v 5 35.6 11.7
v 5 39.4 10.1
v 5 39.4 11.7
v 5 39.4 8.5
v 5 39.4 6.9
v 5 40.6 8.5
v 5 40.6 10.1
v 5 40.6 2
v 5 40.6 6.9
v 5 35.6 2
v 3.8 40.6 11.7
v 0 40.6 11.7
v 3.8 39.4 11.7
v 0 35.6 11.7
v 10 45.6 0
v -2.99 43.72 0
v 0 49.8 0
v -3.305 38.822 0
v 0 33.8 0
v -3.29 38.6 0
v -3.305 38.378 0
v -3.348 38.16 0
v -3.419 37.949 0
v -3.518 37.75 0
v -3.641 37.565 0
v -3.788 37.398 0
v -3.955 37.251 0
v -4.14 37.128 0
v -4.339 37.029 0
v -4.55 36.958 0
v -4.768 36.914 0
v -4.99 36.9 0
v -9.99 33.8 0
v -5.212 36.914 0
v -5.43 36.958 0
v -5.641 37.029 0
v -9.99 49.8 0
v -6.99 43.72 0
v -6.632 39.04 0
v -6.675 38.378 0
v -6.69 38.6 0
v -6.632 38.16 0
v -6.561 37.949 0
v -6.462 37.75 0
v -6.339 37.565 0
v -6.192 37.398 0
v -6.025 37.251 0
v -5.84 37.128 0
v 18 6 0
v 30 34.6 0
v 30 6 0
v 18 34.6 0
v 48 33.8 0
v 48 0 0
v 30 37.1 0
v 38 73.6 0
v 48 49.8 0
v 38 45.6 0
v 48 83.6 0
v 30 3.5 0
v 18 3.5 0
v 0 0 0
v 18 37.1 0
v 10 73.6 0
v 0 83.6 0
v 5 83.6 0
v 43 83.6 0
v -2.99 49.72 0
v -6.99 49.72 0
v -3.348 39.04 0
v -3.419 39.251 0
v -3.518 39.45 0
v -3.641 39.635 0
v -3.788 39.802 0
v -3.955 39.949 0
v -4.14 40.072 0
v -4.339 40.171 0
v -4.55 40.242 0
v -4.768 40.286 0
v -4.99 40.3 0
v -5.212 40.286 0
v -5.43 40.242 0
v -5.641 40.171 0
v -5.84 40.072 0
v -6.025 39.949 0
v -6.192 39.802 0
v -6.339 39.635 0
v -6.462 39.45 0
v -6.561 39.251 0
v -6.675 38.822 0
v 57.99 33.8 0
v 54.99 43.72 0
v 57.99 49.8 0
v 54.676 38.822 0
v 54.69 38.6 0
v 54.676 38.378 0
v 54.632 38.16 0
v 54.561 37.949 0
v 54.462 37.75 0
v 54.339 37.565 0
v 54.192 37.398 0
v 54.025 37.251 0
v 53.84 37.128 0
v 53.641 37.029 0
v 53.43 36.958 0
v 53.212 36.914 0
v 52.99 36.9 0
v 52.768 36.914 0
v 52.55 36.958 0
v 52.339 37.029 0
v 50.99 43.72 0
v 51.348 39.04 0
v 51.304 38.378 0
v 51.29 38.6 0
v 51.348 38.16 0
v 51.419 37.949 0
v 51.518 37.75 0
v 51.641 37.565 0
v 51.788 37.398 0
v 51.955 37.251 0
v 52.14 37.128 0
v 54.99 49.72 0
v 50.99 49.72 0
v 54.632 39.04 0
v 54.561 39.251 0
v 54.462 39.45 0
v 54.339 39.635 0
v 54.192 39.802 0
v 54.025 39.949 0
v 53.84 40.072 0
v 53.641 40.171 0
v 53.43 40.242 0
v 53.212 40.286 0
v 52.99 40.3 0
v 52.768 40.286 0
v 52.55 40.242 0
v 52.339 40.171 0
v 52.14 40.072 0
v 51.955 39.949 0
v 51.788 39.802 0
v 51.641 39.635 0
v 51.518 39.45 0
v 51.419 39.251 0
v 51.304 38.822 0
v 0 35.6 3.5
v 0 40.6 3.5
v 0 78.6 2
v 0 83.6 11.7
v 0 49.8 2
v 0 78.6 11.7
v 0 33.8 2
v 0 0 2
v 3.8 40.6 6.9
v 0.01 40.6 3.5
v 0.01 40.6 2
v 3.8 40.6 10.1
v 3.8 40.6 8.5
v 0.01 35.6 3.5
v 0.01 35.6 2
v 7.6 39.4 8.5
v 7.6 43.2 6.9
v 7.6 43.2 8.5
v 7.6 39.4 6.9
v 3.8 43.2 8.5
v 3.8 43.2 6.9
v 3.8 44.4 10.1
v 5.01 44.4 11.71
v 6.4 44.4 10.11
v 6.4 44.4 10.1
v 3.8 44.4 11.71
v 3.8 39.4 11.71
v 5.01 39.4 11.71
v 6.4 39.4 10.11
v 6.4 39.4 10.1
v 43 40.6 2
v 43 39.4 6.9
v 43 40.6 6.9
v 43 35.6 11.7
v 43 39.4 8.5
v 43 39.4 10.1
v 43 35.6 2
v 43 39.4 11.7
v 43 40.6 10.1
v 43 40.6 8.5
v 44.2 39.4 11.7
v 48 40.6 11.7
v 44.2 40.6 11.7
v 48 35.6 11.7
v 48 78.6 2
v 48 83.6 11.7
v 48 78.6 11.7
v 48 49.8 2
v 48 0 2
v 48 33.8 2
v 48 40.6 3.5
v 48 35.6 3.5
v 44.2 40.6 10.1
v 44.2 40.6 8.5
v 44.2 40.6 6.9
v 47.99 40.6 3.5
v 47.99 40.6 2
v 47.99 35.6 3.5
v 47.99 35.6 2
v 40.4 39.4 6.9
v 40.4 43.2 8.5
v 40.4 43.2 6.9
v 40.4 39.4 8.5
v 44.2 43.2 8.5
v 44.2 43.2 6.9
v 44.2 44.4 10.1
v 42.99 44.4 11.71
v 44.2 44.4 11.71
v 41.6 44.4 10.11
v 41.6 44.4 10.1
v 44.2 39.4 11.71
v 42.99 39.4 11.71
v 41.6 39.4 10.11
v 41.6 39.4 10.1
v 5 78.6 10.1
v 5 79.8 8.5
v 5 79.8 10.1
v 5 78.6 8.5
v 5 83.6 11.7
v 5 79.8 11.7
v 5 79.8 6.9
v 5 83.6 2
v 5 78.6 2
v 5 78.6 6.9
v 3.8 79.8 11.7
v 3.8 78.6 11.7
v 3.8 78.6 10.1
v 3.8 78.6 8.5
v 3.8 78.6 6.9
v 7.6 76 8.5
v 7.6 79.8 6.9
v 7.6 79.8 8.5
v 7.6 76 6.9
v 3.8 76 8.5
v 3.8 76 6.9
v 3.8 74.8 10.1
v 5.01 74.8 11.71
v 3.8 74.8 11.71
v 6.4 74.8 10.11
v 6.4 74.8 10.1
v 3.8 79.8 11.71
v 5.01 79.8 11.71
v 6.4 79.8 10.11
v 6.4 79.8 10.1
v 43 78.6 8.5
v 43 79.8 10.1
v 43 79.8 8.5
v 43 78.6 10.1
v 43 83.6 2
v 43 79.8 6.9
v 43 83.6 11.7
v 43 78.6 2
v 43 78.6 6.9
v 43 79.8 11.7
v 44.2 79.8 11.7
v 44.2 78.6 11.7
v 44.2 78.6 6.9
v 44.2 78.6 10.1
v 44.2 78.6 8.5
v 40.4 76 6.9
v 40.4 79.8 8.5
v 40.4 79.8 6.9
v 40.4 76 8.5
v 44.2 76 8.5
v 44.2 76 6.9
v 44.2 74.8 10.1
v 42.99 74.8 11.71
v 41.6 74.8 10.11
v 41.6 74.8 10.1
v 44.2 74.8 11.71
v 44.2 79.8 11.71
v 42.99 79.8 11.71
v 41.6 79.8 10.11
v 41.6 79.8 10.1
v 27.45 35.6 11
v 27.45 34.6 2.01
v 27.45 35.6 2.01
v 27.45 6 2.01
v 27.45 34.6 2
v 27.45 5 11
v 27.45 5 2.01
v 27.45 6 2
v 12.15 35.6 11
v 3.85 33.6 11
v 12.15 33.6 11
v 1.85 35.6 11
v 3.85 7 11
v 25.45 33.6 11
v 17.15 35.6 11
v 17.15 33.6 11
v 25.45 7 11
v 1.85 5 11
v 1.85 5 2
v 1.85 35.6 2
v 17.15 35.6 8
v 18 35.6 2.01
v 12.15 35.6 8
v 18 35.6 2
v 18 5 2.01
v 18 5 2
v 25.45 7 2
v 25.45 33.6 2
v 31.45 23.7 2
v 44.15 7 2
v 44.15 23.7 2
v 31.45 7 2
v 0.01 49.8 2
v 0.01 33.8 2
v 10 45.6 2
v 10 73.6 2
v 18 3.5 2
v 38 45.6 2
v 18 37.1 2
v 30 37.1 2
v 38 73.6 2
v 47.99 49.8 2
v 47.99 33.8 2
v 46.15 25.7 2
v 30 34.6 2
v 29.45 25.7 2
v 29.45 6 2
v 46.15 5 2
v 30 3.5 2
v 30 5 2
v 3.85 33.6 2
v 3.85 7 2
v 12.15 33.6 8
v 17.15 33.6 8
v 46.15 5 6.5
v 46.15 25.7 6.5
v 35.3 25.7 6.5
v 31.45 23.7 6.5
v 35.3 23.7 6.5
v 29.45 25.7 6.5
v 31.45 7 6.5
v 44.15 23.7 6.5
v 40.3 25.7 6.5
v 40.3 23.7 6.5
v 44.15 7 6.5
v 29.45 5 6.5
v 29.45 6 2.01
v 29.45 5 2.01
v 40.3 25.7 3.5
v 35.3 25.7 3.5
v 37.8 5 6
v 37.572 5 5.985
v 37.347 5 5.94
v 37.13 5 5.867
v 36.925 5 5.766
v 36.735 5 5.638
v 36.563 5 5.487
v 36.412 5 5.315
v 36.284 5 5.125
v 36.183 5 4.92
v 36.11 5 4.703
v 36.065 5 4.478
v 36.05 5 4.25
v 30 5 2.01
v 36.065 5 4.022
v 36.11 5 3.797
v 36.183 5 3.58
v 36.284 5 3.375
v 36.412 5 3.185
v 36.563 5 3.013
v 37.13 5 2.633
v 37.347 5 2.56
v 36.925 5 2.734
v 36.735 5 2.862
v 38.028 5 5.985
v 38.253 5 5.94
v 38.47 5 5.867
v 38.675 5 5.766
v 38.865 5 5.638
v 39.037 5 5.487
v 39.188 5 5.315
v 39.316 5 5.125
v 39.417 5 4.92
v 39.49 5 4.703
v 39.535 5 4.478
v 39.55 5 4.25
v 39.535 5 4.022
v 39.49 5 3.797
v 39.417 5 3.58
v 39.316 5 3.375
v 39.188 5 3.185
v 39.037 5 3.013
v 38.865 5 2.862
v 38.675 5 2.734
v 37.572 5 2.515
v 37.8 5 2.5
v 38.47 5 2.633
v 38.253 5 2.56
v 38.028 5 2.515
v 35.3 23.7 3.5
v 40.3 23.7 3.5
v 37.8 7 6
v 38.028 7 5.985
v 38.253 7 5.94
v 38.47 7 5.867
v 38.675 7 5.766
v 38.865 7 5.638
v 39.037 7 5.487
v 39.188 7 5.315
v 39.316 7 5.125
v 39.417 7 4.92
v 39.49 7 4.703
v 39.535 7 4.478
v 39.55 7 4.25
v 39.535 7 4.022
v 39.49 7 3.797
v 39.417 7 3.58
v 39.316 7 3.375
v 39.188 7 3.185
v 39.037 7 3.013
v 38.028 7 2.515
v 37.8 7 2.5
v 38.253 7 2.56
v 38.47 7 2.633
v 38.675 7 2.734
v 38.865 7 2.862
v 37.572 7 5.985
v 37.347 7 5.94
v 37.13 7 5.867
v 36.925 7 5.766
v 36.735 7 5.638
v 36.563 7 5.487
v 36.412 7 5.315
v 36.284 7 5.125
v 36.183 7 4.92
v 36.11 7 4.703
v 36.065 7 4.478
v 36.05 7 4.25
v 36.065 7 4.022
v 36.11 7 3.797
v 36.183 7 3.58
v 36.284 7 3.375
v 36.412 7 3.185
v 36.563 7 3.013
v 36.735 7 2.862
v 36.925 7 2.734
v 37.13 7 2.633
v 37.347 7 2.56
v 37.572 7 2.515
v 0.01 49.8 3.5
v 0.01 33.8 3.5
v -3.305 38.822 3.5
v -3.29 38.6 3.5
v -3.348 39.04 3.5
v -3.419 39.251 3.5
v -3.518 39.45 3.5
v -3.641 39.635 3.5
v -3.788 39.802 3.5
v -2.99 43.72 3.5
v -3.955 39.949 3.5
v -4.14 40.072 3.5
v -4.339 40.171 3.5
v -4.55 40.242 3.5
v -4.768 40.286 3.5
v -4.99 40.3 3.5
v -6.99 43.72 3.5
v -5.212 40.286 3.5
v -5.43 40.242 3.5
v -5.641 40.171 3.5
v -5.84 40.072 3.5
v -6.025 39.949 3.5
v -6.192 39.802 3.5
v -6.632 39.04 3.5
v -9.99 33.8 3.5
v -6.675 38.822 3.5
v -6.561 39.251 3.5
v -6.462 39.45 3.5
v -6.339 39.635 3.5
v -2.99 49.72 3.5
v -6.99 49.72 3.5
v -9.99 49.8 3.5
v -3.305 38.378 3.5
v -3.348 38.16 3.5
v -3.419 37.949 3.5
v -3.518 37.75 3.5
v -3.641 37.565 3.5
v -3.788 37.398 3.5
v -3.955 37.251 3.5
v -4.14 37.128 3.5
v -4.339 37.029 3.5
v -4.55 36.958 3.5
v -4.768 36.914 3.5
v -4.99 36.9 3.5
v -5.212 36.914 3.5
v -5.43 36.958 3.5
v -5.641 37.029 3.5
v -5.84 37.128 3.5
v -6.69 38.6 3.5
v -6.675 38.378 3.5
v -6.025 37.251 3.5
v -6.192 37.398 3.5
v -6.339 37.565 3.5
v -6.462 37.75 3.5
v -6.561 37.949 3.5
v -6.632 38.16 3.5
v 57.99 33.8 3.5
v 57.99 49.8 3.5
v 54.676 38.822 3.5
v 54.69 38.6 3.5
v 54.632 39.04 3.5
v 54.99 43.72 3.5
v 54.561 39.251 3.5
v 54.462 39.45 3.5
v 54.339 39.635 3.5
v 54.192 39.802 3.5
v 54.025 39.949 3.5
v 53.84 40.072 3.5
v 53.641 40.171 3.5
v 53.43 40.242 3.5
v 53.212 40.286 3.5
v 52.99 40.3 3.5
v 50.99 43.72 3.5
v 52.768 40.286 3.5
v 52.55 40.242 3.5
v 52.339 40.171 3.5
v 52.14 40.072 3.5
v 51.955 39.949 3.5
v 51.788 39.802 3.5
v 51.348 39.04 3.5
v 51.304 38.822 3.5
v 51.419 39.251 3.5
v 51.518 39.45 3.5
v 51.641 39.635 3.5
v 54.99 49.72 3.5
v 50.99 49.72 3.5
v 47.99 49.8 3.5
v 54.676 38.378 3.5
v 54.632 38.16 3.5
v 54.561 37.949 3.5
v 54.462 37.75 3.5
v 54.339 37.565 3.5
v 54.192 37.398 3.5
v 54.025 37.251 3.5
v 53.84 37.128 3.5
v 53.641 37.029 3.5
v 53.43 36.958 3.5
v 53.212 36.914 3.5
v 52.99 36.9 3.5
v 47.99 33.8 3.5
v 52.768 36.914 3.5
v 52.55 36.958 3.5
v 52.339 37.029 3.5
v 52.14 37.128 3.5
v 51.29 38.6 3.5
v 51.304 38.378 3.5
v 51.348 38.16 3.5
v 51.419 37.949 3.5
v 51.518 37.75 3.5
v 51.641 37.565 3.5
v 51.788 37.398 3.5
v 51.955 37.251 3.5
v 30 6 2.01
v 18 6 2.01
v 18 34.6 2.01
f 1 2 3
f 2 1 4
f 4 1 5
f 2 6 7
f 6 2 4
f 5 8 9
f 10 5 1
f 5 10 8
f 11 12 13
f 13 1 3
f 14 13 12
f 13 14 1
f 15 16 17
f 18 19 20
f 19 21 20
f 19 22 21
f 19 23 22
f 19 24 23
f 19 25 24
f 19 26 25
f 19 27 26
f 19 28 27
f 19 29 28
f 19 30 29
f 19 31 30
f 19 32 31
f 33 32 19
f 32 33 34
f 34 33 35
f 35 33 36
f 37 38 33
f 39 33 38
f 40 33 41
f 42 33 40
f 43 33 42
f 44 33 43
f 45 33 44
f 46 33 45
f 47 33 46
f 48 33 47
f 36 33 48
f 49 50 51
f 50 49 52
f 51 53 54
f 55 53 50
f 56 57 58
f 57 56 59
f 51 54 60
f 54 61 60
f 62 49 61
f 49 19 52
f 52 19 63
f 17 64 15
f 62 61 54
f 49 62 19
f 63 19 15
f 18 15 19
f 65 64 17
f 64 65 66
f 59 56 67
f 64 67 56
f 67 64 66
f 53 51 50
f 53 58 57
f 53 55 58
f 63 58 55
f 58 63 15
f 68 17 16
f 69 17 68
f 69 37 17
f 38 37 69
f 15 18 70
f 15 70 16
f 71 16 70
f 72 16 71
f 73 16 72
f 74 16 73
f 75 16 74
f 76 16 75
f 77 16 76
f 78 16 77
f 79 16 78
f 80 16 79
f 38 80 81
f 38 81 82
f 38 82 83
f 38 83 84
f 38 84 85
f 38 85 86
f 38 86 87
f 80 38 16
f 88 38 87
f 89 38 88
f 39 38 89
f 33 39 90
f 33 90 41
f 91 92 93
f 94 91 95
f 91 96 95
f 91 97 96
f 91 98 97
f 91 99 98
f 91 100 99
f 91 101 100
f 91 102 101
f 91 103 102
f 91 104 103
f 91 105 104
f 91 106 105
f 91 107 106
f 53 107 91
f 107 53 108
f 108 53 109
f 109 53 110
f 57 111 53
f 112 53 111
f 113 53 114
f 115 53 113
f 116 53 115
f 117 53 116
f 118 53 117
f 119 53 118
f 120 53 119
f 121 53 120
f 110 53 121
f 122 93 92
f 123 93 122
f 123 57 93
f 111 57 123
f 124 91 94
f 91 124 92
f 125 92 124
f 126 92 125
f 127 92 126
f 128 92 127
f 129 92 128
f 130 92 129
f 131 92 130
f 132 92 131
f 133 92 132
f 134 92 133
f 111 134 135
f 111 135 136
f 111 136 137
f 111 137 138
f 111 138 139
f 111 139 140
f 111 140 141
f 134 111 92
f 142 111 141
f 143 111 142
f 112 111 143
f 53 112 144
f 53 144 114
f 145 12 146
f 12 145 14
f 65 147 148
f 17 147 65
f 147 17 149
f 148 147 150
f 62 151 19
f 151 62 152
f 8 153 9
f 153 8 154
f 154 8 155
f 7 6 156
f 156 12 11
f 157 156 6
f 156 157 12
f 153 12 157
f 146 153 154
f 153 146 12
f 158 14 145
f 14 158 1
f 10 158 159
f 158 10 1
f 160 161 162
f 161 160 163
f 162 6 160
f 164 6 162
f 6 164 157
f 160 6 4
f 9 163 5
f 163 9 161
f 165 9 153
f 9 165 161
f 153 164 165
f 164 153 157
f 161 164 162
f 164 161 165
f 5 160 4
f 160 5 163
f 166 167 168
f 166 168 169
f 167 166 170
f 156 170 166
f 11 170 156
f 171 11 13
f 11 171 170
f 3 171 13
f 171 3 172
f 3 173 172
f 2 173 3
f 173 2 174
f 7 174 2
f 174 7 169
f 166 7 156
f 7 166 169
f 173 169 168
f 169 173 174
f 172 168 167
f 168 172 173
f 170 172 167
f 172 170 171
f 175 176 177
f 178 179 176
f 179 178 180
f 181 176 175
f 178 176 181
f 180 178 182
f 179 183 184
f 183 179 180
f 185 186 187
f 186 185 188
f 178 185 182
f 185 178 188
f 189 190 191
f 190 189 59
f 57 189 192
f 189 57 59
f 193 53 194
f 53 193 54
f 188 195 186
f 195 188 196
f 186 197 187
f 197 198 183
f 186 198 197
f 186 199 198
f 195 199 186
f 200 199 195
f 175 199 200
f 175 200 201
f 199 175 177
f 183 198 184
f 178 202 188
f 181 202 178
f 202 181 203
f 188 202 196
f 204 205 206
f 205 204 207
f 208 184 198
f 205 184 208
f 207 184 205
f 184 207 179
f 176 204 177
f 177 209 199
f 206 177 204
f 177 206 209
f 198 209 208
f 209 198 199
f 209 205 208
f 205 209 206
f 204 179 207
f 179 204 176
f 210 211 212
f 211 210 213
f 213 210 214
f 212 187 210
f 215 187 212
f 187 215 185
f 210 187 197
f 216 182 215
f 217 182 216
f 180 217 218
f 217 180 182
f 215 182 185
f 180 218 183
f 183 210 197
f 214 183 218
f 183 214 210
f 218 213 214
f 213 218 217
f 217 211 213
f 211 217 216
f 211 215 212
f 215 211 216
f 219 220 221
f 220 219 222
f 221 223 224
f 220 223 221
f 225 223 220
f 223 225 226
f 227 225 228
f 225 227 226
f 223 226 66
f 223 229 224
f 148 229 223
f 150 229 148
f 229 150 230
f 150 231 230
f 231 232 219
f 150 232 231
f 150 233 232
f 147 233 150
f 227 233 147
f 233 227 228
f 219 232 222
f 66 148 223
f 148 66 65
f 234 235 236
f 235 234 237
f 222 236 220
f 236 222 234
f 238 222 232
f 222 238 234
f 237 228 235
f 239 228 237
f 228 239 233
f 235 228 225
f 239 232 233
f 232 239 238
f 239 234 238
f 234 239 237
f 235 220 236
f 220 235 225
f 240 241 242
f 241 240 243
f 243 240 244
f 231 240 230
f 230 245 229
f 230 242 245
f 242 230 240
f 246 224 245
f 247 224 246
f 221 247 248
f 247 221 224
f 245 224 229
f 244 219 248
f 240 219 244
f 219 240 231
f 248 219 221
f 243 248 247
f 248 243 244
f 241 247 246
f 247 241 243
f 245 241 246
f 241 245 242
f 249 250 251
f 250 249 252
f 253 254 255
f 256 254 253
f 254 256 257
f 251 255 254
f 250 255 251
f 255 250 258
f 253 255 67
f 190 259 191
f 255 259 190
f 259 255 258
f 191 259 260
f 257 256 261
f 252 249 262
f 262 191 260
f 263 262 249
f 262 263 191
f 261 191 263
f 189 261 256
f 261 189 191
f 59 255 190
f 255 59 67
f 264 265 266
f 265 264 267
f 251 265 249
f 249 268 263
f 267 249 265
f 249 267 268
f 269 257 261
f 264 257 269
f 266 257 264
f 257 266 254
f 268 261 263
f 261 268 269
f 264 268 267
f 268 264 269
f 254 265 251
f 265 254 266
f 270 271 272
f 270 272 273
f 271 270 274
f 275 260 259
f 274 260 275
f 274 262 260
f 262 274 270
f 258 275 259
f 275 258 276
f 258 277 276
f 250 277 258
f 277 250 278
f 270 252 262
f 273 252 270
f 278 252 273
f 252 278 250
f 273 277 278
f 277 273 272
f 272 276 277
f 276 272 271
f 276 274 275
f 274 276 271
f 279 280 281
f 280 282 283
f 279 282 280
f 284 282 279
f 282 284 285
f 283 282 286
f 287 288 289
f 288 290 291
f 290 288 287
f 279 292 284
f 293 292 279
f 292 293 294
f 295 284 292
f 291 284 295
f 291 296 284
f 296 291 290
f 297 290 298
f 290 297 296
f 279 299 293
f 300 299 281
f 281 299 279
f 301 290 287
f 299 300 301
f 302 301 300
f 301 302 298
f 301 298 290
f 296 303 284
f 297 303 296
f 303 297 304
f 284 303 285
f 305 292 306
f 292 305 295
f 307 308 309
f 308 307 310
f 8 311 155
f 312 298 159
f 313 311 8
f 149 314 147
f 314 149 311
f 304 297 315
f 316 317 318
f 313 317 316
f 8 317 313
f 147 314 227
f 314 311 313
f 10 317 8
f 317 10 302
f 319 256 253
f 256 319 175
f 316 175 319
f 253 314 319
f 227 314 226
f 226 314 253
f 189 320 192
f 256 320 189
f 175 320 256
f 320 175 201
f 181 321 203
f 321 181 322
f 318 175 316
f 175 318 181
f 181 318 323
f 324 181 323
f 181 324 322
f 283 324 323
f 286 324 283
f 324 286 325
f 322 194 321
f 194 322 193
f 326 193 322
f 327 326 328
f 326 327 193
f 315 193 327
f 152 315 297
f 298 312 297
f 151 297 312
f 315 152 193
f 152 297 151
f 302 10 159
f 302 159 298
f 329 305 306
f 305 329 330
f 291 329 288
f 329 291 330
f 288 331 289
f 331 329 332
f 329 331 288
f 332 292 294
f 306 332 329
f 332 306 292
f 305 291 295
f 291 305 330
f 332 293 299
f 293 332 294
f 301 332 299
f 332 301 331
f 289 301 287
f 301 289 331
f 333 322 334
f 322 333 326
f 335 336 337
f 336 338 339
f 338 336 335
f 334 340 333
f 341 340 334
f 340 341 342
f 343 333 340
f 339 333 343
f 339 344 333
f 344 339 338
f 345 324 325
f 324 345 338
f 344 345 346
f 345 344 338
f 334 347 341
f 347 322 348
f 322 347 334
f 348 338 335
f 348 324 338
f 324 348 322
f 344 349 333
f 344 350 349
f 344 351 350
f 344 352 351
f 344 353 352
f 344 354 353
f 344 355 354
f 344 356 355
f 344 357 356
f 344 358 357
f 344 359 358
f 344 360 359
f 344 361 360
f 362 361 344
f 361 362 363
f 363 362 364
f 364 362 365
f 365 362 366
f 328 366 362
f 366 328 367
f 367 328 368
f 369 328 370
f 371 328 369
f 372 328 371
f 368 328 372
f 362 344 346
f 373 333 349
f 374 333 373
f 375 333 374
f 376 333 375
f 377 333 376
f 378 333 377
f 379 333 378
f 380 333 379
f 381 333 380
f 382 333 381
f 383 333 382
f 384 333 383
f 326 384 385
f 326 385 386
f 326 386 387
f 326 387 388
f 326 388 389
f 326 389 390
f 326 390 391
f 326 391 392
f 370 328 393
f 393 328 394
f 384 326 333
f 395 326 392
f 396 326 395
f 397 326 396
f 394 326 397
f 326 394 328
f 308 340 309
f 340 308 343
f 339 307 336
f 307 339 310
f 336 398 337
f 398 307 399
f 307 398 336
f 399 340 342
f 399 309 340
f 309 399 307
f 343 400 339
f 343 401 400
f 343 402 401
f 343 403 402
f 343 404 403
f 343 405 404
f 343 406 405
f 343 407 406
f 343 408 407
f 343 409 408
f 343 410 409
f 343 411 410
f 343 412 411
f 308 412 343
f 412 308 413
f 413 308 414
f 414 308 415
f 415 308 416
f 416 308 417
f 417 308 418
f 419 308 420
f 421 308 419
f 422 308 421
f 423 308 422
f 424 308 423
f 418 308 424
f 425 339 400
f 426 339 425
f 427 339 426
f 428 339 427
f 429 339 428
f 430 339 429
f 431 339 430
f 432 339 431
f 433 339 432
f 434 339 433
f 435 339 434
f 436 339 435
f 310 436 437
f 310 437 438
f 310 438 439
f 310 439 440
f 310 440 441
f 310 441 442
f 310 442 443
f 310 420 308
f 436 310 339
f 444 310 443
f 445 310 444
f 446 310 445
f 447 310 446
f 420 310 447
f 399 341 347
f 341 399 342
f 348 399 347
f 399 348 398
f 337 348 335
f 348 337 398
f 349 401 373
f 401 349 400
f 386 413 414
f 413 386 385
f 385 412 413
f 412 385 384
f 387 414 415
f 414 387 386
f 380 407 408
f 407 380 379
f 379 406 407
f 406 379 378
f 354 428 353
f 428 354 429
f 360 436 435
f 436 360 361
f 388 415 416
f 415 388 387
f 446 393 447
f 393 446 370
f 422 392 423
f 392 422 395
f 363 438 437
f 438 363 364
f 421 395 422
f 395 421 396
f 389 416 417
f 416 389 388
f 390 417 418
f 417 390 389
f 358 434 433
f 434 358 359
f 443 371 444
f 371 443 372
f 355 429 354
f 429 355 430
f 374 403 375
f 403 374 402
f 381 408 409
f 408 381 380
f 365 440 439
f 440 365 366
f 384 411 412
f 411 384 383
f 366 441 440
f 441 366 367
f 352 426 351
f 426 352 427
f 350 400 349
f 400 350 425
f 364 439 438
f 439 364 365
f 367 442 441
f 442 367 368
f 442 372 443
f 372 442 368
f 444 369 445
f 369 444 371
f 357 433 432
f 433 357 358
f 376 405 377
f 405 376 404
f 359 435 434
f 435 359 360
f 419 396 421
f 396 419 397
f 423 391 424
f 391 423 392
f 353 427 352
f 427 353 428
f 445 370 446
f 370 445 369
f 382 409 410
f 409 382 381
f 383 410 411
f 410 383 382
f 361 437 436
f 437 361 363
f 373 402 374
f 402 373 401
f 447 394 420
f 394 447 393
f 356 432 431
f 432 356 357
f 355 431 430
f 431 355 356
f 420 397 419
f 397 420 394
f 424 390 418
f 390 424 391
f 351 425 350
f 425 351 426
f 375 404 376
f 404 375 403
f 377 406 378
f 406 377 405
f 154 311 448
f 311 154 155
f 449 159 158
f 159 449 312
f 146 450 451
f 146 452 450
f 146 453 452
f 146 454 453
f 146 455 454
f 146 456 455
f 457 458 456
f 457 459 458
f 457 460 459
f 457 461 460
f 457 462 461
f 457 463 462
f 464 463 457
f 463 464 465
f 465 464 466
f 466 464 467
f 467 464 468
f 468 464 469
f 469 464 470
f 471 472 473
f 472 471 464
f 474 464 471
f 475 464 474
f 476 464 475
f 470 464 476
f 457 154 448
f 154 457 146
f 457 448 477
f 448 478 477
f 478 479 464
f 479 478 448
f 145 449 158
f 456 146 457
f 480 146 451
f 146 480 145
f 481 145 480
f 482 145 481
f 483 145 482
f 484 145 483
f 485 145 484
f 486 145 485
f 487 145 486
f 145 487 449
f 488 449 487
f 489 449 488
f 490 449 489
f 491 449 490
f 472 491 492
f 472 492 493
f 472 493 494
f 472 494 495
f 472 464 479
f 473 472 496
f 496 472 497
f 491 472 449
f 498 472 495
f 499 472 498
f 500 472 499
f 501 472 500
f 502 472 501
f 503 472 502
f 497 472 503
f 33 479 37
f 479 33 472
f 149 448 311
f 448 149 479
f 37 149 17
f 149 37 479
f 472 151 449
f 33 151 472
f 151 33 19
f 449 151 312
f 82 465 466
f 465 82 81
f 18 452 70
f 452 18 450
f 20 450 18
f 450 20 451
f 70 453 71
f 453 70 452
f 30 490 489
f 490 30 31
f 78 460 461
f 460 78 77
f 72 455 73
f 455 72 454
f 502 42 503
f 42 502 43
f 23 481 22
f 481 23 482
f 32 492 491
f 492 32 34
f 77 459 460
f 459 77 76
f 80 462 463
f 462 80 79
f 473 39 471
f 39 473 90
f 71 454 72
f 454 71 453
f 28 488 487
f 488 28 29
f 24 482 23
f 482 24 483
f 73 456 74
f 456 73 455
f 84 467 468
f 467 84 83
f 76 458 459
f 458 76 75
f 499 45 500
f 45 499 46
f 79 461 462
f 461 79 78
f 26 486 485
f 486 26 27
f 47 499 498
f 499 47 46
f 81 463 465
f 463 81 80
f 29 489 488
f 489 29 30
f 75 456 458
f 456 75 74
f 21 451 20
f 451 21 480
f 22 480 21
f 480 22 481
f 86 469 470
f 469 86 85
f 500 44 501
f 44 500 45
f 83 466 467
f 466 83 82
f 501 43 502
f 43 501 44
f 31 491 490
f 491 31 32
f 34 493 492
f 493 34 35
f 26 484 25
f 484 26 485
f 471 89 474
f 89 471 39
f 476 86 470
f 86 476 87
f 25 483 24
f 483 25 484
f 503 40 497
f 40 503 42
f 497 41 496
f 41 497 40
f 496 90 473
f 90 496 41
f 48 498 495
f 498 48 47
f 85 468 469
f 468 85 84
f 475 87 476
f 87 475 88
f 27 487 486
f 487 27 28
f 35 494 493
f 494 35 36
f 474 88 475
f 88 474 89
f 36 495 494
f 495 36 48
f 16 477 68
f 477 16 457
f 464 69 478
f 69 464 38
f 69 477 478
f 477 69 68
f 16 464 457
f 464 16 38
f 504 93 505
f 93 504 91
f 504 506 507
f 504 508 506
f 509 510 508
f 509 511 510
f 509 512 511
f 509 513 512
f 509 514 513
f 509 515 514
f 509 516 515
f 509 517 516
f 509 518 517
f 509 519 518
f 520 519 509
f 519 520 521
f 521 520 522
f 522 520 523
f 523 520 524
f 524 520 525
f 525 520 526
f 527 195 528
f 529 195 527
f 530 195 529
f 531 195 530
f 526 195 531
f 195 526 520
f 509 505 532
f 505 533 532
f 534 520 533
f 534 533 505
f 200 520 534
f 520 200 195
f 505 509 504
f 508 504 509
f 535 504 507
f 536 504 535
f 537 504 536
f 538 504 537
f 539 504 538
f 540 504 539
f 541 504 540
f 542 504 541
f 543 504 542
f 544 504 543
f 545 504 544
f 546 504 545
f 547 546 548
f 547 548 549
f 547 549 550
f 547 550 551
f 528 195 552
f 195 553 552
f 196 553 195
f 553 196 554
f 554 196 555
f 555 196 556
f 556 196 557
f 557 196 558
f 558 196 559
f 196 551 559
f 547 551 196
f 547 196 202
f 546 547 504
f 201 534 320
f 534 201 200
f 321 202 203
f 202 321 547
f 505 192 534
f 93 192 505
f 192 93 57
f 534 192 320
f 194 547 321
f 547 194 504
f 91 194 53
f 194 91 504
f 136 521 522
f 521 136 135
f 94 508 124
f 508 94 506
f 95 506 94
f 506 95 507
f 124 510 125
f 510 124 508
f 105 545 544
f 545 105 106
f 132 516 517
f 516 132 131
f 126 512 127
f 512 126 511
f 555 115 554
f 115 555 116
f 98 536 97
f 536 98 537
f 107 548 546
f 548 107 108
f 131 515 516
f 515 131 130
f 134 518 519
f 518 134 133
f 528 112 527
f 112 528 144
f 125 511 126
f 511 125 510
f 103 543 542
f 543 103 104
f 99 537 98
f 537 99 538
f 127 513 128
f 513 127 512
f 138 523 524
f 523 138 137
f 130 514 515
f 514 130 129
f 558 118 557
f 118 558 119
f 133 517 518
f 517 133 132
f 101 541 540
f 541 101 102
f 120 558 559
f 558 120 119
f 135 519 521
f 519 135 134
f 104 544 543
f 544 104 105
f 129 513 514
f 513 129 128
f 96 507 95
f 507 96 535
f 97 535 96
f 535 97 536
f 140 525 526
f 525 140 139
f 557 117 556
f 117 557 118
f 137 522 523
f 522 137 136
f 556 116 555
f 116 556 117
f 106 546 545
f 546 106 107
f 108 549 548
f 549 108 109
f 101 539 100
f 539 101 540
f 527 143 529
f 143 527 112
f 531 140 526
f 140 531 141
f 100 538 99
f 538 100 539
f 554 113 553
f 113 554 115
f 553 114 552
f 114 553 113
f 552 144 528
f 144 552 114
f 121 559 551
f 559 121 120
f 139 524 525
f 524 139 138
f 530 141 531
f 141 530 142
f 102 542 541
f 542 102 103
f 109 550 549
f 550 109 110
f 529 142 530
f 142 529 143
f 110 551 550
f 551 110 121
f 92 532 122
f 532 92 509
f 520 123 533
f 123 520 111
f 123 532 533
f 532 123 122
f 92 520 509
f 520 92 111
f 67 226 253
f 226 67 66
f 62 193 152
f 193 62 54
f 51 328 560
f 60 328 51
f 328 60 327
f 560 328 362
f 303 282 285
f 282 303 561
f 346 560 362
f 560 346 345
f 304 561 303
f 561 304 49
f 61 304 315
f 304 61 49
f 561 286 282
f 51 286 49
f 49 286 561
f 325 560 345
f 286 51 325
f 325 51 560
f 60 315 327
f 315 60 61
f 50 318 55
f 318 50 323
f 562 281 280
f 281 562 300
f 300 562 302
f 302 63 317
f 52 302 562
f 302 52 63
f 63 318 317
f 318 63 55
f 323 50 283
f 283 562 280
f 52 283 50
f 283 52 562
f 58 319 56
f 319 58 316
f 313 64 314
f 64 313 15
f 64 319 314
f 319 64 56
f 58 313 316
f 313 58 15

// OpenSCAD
// =====================================================================
//  Waterraket payload-houder
//  ESP32-S3-Touch-LCD-1.69  +  BMP388 (CJMCU-388)  +  LiPo 902025
//  Parametrisch - meet je onderdelen met een schuifmaat en pas aan.
//  Print: bodem op het bed, GEEN supports nodig.
// =====================================================================

/* [ Board: ESP32-S3-Touch-LCD-1.69 ] */
board_w    = 38;    // breedte PCB  (PWR-zijde <-> USB-C-zijde)  -- METEN
board_l    = 38;    // lengte PCB                                 -- METEN
board_t    = 1.6;   // dikte PCB
back_clear = 6.5;   // vrije ruimte ONDER de PCB (USB-C-connector/chips)
clip_grip  = 1.4;   // hoeveel de hoekclip over de PCB-rand pakt
clip_h     = 1.6;   // hoogte cliphaak boven de PCB

/* [ Accu: LiPo 902025 (3,7V 500mAh) ] */
batt_w     = 20;    // -- METEN
batt_l     = 25;    // -- METEN
batt_t     = 9;     // -- METEN
batt_play  = 0.8;   // speling rond de accu

/* [ Barometer: BMP388 / CJMCU-388 ] */
bmp_w      = 11.5;  // -- METEN
bmp_l      = 15.5;  // -- METEN
bmp_t      = 4.5;   // -- METEN (incl. componenten)
bmp_play   = 0.6;
vent_d     = 3.5;   // ventilatiegat barometer (statische poort)

/* [ Algemeen ] */
wall       = 2.0;   // wanddikte
base       = 2.0;   // bodemdikte
post       = 5.0;   // footprint hoeksteun
ledge      = 2.6;   // hoe ver de steun onder de PCB-hoek pakt
led_t      = 1.6;   // dikte steunrichel
margin     = 5.0;   // marge aan de uiteinden (>= post, anders steekt de steun uit)
gap        = 5.0;   // ruimte tussen board-zone en accublok
pocket_gap = 2.0;   // ruimte tussen accu- en BMP-vak
mounts     = true;  // zijoren met M3-gat + tiewrap-sleuf
screw_d    = 3.4;   // M3 doorvoer
strap_w    = 12;    // breedte spanband-sleuven
eps        = 0.01;
$fn        = 48;

// ---------- afgeleide maten ----------
batt_pw = batt_w + 2*batt_play + 2*wall;   // accuvak buitenmaat (x)
batt_pl = batt_l + 2*batt_play + 2*wall;   // accuvak buitenmaat (y)
bmp_pw  = bmp_w  + 2*bmp_play  + 2*wall;
bmp_pl  = bmp_l  + 2*bmp_play  + 2*wall;

board_zone_w = board_w + 2*post;
pockets_w    = batt_pw + pocket_gap + bmp_pw;
plate_w  = max(board_zone_w, pockets_w);
pockets_l = max(batt_pl, bmp_pl);
plate_l  = margin + pockets_l + gap + board_l + margin;

H_top = back_clear + board_t + clip_h;     // hoogte hoeksteun vanaf bodem-bovenkant

// board-hoeken
bx0 = (plate_w - board_w)/2;
bx1 = bx0 + board_w;
by0 = plate_l - margin - board_l;
by1 = by0 + board_l;

// pockets-cluster (gecentreerd in x)
clx0 = (plate_w - pockets_w)/2;
batt_x0 = clx0;
bmp_x0  = clx0 + batt_pw + pocket_gap;
pock_y0 = margin;

// =====================================================================
module corner_clip() {
  // lokaal: board-hoek op (0,0); board-interieur = +x,+y; kolom in -x,-y
  ov = 1.2;
  union() {
    // kolom
    translate([-post, -post, 0]) cube([post, post, base + H_top]);
    // steunrichel onder de PCB-hoek
    translate([-ov, -ov, base + back_clear - led_t])
      cube([ledge + ov, ledge + ov, led_t]);
    // cliphaak (wig: vlakke houdkant onder, schuine inloop boven)
    zb = base + back_clear + board_t;
    hull() {
      translate([-ov, -ov, zb])            cube([clip_grip + ov, post, eps]);
      translate([-ov, -ov, zb + clip_h])   cube([ov + eps,       post, eps]);
    }
  }
}

module pocket(px, py, pw, pl, ph, wire_to_y_plus=true, vent=false) {
  difference() {
    translate([px, py, 0]) cube([pw, pl, base + ph]);
    // holte (open bovenkant)
    translate([px + wall, py + wall, base])
      cube([pw - 2*wall, pl - 2*wall, ph + eps]);
    // draadsleuf in de wand richting board (+y)
    if (wire_to_y_plus)
      translate([px + pw/2 - 2.5, py + pl - wall - eps, base + ph - 3])
        cube([5, wall + 2*eps, 3 + eps]);
    // ventilatiegat (statische poort) in de -y wand
    if (vent)
      translate([px + pw/2, py - eps, base + ph/2])
        rotate([-90,0,0]) cylinder(h = wall + 2*eps, d = vent_d);
  }
}

module mount_ear(side) {  // side = -1 (links) of +1 (rechts)
  ew = 10; et = base + 1.5; el = 16;
  x = (side < 0) ? -ew + eps : plate_w - eps;
  translate([x, plate_l/2 - el/2, 0])
  difference() {
    cube([ew, el, et]);
    translate([ew/2, el*0.30, -eps]) cylinder(h = et + 2*eps, d = screw_d);
    // tiewrap-sleuf
    translate([ew/2 - 2, el*0.62, -eps]) cube([4, 6, et + 2*eps]);
  }
}

// =====================================================================
difference() {
  union() {
    // bodemplaat
    cube([plate_w, plate_l, base]);

    // vier hoekclips voor het board
    translate([bx0, by0, 0])                       corner_clip();
    translate([bx1, by0, 0]) mirror([1,0,0])       corner_clip();
    translate([bx0, by1, 0]) mirror([0,1,0])       corner_clip();
    translate([bx1, by1, 0]) mirror([1,0,0]) mirror([0,1,0]) corner_clip();

    // accuvak + BMP-vak
    pocket(batt_x0, pock_y0, batt_pw, batt_pl, batt_t, true,  false);
    pocket(bmp_x0,  pock_y0, bmp_pw,  bmp_pl,  bmp_t,  true,  true);

    if (mounts) { mount_ear(-1); mount_ear(1); }
  }

  // spanband-sleuven door de bodem, weerszijden van het accuvak
  translate([clx0 + pockets_w/2 - strap_w/2, pock_y0 - 1.5 - 0.0, -eps])
    cube([strap_w, 2.5, base + 2*eps]);
  translate([clx0 + pockets_w/2 - strap_w/2, pock_y0 + pockets_l - 1.0, -eps])
    cube([strap_w, 2.5, base + 2*eps]);

  // gewicht besparen: gat in de bodem onder het board (open cavity)
  translate([bx0 + 5, by0 + 5, -eps])
    cube([board_w - 10, board_l - 10, base + 2*eps]);
}
